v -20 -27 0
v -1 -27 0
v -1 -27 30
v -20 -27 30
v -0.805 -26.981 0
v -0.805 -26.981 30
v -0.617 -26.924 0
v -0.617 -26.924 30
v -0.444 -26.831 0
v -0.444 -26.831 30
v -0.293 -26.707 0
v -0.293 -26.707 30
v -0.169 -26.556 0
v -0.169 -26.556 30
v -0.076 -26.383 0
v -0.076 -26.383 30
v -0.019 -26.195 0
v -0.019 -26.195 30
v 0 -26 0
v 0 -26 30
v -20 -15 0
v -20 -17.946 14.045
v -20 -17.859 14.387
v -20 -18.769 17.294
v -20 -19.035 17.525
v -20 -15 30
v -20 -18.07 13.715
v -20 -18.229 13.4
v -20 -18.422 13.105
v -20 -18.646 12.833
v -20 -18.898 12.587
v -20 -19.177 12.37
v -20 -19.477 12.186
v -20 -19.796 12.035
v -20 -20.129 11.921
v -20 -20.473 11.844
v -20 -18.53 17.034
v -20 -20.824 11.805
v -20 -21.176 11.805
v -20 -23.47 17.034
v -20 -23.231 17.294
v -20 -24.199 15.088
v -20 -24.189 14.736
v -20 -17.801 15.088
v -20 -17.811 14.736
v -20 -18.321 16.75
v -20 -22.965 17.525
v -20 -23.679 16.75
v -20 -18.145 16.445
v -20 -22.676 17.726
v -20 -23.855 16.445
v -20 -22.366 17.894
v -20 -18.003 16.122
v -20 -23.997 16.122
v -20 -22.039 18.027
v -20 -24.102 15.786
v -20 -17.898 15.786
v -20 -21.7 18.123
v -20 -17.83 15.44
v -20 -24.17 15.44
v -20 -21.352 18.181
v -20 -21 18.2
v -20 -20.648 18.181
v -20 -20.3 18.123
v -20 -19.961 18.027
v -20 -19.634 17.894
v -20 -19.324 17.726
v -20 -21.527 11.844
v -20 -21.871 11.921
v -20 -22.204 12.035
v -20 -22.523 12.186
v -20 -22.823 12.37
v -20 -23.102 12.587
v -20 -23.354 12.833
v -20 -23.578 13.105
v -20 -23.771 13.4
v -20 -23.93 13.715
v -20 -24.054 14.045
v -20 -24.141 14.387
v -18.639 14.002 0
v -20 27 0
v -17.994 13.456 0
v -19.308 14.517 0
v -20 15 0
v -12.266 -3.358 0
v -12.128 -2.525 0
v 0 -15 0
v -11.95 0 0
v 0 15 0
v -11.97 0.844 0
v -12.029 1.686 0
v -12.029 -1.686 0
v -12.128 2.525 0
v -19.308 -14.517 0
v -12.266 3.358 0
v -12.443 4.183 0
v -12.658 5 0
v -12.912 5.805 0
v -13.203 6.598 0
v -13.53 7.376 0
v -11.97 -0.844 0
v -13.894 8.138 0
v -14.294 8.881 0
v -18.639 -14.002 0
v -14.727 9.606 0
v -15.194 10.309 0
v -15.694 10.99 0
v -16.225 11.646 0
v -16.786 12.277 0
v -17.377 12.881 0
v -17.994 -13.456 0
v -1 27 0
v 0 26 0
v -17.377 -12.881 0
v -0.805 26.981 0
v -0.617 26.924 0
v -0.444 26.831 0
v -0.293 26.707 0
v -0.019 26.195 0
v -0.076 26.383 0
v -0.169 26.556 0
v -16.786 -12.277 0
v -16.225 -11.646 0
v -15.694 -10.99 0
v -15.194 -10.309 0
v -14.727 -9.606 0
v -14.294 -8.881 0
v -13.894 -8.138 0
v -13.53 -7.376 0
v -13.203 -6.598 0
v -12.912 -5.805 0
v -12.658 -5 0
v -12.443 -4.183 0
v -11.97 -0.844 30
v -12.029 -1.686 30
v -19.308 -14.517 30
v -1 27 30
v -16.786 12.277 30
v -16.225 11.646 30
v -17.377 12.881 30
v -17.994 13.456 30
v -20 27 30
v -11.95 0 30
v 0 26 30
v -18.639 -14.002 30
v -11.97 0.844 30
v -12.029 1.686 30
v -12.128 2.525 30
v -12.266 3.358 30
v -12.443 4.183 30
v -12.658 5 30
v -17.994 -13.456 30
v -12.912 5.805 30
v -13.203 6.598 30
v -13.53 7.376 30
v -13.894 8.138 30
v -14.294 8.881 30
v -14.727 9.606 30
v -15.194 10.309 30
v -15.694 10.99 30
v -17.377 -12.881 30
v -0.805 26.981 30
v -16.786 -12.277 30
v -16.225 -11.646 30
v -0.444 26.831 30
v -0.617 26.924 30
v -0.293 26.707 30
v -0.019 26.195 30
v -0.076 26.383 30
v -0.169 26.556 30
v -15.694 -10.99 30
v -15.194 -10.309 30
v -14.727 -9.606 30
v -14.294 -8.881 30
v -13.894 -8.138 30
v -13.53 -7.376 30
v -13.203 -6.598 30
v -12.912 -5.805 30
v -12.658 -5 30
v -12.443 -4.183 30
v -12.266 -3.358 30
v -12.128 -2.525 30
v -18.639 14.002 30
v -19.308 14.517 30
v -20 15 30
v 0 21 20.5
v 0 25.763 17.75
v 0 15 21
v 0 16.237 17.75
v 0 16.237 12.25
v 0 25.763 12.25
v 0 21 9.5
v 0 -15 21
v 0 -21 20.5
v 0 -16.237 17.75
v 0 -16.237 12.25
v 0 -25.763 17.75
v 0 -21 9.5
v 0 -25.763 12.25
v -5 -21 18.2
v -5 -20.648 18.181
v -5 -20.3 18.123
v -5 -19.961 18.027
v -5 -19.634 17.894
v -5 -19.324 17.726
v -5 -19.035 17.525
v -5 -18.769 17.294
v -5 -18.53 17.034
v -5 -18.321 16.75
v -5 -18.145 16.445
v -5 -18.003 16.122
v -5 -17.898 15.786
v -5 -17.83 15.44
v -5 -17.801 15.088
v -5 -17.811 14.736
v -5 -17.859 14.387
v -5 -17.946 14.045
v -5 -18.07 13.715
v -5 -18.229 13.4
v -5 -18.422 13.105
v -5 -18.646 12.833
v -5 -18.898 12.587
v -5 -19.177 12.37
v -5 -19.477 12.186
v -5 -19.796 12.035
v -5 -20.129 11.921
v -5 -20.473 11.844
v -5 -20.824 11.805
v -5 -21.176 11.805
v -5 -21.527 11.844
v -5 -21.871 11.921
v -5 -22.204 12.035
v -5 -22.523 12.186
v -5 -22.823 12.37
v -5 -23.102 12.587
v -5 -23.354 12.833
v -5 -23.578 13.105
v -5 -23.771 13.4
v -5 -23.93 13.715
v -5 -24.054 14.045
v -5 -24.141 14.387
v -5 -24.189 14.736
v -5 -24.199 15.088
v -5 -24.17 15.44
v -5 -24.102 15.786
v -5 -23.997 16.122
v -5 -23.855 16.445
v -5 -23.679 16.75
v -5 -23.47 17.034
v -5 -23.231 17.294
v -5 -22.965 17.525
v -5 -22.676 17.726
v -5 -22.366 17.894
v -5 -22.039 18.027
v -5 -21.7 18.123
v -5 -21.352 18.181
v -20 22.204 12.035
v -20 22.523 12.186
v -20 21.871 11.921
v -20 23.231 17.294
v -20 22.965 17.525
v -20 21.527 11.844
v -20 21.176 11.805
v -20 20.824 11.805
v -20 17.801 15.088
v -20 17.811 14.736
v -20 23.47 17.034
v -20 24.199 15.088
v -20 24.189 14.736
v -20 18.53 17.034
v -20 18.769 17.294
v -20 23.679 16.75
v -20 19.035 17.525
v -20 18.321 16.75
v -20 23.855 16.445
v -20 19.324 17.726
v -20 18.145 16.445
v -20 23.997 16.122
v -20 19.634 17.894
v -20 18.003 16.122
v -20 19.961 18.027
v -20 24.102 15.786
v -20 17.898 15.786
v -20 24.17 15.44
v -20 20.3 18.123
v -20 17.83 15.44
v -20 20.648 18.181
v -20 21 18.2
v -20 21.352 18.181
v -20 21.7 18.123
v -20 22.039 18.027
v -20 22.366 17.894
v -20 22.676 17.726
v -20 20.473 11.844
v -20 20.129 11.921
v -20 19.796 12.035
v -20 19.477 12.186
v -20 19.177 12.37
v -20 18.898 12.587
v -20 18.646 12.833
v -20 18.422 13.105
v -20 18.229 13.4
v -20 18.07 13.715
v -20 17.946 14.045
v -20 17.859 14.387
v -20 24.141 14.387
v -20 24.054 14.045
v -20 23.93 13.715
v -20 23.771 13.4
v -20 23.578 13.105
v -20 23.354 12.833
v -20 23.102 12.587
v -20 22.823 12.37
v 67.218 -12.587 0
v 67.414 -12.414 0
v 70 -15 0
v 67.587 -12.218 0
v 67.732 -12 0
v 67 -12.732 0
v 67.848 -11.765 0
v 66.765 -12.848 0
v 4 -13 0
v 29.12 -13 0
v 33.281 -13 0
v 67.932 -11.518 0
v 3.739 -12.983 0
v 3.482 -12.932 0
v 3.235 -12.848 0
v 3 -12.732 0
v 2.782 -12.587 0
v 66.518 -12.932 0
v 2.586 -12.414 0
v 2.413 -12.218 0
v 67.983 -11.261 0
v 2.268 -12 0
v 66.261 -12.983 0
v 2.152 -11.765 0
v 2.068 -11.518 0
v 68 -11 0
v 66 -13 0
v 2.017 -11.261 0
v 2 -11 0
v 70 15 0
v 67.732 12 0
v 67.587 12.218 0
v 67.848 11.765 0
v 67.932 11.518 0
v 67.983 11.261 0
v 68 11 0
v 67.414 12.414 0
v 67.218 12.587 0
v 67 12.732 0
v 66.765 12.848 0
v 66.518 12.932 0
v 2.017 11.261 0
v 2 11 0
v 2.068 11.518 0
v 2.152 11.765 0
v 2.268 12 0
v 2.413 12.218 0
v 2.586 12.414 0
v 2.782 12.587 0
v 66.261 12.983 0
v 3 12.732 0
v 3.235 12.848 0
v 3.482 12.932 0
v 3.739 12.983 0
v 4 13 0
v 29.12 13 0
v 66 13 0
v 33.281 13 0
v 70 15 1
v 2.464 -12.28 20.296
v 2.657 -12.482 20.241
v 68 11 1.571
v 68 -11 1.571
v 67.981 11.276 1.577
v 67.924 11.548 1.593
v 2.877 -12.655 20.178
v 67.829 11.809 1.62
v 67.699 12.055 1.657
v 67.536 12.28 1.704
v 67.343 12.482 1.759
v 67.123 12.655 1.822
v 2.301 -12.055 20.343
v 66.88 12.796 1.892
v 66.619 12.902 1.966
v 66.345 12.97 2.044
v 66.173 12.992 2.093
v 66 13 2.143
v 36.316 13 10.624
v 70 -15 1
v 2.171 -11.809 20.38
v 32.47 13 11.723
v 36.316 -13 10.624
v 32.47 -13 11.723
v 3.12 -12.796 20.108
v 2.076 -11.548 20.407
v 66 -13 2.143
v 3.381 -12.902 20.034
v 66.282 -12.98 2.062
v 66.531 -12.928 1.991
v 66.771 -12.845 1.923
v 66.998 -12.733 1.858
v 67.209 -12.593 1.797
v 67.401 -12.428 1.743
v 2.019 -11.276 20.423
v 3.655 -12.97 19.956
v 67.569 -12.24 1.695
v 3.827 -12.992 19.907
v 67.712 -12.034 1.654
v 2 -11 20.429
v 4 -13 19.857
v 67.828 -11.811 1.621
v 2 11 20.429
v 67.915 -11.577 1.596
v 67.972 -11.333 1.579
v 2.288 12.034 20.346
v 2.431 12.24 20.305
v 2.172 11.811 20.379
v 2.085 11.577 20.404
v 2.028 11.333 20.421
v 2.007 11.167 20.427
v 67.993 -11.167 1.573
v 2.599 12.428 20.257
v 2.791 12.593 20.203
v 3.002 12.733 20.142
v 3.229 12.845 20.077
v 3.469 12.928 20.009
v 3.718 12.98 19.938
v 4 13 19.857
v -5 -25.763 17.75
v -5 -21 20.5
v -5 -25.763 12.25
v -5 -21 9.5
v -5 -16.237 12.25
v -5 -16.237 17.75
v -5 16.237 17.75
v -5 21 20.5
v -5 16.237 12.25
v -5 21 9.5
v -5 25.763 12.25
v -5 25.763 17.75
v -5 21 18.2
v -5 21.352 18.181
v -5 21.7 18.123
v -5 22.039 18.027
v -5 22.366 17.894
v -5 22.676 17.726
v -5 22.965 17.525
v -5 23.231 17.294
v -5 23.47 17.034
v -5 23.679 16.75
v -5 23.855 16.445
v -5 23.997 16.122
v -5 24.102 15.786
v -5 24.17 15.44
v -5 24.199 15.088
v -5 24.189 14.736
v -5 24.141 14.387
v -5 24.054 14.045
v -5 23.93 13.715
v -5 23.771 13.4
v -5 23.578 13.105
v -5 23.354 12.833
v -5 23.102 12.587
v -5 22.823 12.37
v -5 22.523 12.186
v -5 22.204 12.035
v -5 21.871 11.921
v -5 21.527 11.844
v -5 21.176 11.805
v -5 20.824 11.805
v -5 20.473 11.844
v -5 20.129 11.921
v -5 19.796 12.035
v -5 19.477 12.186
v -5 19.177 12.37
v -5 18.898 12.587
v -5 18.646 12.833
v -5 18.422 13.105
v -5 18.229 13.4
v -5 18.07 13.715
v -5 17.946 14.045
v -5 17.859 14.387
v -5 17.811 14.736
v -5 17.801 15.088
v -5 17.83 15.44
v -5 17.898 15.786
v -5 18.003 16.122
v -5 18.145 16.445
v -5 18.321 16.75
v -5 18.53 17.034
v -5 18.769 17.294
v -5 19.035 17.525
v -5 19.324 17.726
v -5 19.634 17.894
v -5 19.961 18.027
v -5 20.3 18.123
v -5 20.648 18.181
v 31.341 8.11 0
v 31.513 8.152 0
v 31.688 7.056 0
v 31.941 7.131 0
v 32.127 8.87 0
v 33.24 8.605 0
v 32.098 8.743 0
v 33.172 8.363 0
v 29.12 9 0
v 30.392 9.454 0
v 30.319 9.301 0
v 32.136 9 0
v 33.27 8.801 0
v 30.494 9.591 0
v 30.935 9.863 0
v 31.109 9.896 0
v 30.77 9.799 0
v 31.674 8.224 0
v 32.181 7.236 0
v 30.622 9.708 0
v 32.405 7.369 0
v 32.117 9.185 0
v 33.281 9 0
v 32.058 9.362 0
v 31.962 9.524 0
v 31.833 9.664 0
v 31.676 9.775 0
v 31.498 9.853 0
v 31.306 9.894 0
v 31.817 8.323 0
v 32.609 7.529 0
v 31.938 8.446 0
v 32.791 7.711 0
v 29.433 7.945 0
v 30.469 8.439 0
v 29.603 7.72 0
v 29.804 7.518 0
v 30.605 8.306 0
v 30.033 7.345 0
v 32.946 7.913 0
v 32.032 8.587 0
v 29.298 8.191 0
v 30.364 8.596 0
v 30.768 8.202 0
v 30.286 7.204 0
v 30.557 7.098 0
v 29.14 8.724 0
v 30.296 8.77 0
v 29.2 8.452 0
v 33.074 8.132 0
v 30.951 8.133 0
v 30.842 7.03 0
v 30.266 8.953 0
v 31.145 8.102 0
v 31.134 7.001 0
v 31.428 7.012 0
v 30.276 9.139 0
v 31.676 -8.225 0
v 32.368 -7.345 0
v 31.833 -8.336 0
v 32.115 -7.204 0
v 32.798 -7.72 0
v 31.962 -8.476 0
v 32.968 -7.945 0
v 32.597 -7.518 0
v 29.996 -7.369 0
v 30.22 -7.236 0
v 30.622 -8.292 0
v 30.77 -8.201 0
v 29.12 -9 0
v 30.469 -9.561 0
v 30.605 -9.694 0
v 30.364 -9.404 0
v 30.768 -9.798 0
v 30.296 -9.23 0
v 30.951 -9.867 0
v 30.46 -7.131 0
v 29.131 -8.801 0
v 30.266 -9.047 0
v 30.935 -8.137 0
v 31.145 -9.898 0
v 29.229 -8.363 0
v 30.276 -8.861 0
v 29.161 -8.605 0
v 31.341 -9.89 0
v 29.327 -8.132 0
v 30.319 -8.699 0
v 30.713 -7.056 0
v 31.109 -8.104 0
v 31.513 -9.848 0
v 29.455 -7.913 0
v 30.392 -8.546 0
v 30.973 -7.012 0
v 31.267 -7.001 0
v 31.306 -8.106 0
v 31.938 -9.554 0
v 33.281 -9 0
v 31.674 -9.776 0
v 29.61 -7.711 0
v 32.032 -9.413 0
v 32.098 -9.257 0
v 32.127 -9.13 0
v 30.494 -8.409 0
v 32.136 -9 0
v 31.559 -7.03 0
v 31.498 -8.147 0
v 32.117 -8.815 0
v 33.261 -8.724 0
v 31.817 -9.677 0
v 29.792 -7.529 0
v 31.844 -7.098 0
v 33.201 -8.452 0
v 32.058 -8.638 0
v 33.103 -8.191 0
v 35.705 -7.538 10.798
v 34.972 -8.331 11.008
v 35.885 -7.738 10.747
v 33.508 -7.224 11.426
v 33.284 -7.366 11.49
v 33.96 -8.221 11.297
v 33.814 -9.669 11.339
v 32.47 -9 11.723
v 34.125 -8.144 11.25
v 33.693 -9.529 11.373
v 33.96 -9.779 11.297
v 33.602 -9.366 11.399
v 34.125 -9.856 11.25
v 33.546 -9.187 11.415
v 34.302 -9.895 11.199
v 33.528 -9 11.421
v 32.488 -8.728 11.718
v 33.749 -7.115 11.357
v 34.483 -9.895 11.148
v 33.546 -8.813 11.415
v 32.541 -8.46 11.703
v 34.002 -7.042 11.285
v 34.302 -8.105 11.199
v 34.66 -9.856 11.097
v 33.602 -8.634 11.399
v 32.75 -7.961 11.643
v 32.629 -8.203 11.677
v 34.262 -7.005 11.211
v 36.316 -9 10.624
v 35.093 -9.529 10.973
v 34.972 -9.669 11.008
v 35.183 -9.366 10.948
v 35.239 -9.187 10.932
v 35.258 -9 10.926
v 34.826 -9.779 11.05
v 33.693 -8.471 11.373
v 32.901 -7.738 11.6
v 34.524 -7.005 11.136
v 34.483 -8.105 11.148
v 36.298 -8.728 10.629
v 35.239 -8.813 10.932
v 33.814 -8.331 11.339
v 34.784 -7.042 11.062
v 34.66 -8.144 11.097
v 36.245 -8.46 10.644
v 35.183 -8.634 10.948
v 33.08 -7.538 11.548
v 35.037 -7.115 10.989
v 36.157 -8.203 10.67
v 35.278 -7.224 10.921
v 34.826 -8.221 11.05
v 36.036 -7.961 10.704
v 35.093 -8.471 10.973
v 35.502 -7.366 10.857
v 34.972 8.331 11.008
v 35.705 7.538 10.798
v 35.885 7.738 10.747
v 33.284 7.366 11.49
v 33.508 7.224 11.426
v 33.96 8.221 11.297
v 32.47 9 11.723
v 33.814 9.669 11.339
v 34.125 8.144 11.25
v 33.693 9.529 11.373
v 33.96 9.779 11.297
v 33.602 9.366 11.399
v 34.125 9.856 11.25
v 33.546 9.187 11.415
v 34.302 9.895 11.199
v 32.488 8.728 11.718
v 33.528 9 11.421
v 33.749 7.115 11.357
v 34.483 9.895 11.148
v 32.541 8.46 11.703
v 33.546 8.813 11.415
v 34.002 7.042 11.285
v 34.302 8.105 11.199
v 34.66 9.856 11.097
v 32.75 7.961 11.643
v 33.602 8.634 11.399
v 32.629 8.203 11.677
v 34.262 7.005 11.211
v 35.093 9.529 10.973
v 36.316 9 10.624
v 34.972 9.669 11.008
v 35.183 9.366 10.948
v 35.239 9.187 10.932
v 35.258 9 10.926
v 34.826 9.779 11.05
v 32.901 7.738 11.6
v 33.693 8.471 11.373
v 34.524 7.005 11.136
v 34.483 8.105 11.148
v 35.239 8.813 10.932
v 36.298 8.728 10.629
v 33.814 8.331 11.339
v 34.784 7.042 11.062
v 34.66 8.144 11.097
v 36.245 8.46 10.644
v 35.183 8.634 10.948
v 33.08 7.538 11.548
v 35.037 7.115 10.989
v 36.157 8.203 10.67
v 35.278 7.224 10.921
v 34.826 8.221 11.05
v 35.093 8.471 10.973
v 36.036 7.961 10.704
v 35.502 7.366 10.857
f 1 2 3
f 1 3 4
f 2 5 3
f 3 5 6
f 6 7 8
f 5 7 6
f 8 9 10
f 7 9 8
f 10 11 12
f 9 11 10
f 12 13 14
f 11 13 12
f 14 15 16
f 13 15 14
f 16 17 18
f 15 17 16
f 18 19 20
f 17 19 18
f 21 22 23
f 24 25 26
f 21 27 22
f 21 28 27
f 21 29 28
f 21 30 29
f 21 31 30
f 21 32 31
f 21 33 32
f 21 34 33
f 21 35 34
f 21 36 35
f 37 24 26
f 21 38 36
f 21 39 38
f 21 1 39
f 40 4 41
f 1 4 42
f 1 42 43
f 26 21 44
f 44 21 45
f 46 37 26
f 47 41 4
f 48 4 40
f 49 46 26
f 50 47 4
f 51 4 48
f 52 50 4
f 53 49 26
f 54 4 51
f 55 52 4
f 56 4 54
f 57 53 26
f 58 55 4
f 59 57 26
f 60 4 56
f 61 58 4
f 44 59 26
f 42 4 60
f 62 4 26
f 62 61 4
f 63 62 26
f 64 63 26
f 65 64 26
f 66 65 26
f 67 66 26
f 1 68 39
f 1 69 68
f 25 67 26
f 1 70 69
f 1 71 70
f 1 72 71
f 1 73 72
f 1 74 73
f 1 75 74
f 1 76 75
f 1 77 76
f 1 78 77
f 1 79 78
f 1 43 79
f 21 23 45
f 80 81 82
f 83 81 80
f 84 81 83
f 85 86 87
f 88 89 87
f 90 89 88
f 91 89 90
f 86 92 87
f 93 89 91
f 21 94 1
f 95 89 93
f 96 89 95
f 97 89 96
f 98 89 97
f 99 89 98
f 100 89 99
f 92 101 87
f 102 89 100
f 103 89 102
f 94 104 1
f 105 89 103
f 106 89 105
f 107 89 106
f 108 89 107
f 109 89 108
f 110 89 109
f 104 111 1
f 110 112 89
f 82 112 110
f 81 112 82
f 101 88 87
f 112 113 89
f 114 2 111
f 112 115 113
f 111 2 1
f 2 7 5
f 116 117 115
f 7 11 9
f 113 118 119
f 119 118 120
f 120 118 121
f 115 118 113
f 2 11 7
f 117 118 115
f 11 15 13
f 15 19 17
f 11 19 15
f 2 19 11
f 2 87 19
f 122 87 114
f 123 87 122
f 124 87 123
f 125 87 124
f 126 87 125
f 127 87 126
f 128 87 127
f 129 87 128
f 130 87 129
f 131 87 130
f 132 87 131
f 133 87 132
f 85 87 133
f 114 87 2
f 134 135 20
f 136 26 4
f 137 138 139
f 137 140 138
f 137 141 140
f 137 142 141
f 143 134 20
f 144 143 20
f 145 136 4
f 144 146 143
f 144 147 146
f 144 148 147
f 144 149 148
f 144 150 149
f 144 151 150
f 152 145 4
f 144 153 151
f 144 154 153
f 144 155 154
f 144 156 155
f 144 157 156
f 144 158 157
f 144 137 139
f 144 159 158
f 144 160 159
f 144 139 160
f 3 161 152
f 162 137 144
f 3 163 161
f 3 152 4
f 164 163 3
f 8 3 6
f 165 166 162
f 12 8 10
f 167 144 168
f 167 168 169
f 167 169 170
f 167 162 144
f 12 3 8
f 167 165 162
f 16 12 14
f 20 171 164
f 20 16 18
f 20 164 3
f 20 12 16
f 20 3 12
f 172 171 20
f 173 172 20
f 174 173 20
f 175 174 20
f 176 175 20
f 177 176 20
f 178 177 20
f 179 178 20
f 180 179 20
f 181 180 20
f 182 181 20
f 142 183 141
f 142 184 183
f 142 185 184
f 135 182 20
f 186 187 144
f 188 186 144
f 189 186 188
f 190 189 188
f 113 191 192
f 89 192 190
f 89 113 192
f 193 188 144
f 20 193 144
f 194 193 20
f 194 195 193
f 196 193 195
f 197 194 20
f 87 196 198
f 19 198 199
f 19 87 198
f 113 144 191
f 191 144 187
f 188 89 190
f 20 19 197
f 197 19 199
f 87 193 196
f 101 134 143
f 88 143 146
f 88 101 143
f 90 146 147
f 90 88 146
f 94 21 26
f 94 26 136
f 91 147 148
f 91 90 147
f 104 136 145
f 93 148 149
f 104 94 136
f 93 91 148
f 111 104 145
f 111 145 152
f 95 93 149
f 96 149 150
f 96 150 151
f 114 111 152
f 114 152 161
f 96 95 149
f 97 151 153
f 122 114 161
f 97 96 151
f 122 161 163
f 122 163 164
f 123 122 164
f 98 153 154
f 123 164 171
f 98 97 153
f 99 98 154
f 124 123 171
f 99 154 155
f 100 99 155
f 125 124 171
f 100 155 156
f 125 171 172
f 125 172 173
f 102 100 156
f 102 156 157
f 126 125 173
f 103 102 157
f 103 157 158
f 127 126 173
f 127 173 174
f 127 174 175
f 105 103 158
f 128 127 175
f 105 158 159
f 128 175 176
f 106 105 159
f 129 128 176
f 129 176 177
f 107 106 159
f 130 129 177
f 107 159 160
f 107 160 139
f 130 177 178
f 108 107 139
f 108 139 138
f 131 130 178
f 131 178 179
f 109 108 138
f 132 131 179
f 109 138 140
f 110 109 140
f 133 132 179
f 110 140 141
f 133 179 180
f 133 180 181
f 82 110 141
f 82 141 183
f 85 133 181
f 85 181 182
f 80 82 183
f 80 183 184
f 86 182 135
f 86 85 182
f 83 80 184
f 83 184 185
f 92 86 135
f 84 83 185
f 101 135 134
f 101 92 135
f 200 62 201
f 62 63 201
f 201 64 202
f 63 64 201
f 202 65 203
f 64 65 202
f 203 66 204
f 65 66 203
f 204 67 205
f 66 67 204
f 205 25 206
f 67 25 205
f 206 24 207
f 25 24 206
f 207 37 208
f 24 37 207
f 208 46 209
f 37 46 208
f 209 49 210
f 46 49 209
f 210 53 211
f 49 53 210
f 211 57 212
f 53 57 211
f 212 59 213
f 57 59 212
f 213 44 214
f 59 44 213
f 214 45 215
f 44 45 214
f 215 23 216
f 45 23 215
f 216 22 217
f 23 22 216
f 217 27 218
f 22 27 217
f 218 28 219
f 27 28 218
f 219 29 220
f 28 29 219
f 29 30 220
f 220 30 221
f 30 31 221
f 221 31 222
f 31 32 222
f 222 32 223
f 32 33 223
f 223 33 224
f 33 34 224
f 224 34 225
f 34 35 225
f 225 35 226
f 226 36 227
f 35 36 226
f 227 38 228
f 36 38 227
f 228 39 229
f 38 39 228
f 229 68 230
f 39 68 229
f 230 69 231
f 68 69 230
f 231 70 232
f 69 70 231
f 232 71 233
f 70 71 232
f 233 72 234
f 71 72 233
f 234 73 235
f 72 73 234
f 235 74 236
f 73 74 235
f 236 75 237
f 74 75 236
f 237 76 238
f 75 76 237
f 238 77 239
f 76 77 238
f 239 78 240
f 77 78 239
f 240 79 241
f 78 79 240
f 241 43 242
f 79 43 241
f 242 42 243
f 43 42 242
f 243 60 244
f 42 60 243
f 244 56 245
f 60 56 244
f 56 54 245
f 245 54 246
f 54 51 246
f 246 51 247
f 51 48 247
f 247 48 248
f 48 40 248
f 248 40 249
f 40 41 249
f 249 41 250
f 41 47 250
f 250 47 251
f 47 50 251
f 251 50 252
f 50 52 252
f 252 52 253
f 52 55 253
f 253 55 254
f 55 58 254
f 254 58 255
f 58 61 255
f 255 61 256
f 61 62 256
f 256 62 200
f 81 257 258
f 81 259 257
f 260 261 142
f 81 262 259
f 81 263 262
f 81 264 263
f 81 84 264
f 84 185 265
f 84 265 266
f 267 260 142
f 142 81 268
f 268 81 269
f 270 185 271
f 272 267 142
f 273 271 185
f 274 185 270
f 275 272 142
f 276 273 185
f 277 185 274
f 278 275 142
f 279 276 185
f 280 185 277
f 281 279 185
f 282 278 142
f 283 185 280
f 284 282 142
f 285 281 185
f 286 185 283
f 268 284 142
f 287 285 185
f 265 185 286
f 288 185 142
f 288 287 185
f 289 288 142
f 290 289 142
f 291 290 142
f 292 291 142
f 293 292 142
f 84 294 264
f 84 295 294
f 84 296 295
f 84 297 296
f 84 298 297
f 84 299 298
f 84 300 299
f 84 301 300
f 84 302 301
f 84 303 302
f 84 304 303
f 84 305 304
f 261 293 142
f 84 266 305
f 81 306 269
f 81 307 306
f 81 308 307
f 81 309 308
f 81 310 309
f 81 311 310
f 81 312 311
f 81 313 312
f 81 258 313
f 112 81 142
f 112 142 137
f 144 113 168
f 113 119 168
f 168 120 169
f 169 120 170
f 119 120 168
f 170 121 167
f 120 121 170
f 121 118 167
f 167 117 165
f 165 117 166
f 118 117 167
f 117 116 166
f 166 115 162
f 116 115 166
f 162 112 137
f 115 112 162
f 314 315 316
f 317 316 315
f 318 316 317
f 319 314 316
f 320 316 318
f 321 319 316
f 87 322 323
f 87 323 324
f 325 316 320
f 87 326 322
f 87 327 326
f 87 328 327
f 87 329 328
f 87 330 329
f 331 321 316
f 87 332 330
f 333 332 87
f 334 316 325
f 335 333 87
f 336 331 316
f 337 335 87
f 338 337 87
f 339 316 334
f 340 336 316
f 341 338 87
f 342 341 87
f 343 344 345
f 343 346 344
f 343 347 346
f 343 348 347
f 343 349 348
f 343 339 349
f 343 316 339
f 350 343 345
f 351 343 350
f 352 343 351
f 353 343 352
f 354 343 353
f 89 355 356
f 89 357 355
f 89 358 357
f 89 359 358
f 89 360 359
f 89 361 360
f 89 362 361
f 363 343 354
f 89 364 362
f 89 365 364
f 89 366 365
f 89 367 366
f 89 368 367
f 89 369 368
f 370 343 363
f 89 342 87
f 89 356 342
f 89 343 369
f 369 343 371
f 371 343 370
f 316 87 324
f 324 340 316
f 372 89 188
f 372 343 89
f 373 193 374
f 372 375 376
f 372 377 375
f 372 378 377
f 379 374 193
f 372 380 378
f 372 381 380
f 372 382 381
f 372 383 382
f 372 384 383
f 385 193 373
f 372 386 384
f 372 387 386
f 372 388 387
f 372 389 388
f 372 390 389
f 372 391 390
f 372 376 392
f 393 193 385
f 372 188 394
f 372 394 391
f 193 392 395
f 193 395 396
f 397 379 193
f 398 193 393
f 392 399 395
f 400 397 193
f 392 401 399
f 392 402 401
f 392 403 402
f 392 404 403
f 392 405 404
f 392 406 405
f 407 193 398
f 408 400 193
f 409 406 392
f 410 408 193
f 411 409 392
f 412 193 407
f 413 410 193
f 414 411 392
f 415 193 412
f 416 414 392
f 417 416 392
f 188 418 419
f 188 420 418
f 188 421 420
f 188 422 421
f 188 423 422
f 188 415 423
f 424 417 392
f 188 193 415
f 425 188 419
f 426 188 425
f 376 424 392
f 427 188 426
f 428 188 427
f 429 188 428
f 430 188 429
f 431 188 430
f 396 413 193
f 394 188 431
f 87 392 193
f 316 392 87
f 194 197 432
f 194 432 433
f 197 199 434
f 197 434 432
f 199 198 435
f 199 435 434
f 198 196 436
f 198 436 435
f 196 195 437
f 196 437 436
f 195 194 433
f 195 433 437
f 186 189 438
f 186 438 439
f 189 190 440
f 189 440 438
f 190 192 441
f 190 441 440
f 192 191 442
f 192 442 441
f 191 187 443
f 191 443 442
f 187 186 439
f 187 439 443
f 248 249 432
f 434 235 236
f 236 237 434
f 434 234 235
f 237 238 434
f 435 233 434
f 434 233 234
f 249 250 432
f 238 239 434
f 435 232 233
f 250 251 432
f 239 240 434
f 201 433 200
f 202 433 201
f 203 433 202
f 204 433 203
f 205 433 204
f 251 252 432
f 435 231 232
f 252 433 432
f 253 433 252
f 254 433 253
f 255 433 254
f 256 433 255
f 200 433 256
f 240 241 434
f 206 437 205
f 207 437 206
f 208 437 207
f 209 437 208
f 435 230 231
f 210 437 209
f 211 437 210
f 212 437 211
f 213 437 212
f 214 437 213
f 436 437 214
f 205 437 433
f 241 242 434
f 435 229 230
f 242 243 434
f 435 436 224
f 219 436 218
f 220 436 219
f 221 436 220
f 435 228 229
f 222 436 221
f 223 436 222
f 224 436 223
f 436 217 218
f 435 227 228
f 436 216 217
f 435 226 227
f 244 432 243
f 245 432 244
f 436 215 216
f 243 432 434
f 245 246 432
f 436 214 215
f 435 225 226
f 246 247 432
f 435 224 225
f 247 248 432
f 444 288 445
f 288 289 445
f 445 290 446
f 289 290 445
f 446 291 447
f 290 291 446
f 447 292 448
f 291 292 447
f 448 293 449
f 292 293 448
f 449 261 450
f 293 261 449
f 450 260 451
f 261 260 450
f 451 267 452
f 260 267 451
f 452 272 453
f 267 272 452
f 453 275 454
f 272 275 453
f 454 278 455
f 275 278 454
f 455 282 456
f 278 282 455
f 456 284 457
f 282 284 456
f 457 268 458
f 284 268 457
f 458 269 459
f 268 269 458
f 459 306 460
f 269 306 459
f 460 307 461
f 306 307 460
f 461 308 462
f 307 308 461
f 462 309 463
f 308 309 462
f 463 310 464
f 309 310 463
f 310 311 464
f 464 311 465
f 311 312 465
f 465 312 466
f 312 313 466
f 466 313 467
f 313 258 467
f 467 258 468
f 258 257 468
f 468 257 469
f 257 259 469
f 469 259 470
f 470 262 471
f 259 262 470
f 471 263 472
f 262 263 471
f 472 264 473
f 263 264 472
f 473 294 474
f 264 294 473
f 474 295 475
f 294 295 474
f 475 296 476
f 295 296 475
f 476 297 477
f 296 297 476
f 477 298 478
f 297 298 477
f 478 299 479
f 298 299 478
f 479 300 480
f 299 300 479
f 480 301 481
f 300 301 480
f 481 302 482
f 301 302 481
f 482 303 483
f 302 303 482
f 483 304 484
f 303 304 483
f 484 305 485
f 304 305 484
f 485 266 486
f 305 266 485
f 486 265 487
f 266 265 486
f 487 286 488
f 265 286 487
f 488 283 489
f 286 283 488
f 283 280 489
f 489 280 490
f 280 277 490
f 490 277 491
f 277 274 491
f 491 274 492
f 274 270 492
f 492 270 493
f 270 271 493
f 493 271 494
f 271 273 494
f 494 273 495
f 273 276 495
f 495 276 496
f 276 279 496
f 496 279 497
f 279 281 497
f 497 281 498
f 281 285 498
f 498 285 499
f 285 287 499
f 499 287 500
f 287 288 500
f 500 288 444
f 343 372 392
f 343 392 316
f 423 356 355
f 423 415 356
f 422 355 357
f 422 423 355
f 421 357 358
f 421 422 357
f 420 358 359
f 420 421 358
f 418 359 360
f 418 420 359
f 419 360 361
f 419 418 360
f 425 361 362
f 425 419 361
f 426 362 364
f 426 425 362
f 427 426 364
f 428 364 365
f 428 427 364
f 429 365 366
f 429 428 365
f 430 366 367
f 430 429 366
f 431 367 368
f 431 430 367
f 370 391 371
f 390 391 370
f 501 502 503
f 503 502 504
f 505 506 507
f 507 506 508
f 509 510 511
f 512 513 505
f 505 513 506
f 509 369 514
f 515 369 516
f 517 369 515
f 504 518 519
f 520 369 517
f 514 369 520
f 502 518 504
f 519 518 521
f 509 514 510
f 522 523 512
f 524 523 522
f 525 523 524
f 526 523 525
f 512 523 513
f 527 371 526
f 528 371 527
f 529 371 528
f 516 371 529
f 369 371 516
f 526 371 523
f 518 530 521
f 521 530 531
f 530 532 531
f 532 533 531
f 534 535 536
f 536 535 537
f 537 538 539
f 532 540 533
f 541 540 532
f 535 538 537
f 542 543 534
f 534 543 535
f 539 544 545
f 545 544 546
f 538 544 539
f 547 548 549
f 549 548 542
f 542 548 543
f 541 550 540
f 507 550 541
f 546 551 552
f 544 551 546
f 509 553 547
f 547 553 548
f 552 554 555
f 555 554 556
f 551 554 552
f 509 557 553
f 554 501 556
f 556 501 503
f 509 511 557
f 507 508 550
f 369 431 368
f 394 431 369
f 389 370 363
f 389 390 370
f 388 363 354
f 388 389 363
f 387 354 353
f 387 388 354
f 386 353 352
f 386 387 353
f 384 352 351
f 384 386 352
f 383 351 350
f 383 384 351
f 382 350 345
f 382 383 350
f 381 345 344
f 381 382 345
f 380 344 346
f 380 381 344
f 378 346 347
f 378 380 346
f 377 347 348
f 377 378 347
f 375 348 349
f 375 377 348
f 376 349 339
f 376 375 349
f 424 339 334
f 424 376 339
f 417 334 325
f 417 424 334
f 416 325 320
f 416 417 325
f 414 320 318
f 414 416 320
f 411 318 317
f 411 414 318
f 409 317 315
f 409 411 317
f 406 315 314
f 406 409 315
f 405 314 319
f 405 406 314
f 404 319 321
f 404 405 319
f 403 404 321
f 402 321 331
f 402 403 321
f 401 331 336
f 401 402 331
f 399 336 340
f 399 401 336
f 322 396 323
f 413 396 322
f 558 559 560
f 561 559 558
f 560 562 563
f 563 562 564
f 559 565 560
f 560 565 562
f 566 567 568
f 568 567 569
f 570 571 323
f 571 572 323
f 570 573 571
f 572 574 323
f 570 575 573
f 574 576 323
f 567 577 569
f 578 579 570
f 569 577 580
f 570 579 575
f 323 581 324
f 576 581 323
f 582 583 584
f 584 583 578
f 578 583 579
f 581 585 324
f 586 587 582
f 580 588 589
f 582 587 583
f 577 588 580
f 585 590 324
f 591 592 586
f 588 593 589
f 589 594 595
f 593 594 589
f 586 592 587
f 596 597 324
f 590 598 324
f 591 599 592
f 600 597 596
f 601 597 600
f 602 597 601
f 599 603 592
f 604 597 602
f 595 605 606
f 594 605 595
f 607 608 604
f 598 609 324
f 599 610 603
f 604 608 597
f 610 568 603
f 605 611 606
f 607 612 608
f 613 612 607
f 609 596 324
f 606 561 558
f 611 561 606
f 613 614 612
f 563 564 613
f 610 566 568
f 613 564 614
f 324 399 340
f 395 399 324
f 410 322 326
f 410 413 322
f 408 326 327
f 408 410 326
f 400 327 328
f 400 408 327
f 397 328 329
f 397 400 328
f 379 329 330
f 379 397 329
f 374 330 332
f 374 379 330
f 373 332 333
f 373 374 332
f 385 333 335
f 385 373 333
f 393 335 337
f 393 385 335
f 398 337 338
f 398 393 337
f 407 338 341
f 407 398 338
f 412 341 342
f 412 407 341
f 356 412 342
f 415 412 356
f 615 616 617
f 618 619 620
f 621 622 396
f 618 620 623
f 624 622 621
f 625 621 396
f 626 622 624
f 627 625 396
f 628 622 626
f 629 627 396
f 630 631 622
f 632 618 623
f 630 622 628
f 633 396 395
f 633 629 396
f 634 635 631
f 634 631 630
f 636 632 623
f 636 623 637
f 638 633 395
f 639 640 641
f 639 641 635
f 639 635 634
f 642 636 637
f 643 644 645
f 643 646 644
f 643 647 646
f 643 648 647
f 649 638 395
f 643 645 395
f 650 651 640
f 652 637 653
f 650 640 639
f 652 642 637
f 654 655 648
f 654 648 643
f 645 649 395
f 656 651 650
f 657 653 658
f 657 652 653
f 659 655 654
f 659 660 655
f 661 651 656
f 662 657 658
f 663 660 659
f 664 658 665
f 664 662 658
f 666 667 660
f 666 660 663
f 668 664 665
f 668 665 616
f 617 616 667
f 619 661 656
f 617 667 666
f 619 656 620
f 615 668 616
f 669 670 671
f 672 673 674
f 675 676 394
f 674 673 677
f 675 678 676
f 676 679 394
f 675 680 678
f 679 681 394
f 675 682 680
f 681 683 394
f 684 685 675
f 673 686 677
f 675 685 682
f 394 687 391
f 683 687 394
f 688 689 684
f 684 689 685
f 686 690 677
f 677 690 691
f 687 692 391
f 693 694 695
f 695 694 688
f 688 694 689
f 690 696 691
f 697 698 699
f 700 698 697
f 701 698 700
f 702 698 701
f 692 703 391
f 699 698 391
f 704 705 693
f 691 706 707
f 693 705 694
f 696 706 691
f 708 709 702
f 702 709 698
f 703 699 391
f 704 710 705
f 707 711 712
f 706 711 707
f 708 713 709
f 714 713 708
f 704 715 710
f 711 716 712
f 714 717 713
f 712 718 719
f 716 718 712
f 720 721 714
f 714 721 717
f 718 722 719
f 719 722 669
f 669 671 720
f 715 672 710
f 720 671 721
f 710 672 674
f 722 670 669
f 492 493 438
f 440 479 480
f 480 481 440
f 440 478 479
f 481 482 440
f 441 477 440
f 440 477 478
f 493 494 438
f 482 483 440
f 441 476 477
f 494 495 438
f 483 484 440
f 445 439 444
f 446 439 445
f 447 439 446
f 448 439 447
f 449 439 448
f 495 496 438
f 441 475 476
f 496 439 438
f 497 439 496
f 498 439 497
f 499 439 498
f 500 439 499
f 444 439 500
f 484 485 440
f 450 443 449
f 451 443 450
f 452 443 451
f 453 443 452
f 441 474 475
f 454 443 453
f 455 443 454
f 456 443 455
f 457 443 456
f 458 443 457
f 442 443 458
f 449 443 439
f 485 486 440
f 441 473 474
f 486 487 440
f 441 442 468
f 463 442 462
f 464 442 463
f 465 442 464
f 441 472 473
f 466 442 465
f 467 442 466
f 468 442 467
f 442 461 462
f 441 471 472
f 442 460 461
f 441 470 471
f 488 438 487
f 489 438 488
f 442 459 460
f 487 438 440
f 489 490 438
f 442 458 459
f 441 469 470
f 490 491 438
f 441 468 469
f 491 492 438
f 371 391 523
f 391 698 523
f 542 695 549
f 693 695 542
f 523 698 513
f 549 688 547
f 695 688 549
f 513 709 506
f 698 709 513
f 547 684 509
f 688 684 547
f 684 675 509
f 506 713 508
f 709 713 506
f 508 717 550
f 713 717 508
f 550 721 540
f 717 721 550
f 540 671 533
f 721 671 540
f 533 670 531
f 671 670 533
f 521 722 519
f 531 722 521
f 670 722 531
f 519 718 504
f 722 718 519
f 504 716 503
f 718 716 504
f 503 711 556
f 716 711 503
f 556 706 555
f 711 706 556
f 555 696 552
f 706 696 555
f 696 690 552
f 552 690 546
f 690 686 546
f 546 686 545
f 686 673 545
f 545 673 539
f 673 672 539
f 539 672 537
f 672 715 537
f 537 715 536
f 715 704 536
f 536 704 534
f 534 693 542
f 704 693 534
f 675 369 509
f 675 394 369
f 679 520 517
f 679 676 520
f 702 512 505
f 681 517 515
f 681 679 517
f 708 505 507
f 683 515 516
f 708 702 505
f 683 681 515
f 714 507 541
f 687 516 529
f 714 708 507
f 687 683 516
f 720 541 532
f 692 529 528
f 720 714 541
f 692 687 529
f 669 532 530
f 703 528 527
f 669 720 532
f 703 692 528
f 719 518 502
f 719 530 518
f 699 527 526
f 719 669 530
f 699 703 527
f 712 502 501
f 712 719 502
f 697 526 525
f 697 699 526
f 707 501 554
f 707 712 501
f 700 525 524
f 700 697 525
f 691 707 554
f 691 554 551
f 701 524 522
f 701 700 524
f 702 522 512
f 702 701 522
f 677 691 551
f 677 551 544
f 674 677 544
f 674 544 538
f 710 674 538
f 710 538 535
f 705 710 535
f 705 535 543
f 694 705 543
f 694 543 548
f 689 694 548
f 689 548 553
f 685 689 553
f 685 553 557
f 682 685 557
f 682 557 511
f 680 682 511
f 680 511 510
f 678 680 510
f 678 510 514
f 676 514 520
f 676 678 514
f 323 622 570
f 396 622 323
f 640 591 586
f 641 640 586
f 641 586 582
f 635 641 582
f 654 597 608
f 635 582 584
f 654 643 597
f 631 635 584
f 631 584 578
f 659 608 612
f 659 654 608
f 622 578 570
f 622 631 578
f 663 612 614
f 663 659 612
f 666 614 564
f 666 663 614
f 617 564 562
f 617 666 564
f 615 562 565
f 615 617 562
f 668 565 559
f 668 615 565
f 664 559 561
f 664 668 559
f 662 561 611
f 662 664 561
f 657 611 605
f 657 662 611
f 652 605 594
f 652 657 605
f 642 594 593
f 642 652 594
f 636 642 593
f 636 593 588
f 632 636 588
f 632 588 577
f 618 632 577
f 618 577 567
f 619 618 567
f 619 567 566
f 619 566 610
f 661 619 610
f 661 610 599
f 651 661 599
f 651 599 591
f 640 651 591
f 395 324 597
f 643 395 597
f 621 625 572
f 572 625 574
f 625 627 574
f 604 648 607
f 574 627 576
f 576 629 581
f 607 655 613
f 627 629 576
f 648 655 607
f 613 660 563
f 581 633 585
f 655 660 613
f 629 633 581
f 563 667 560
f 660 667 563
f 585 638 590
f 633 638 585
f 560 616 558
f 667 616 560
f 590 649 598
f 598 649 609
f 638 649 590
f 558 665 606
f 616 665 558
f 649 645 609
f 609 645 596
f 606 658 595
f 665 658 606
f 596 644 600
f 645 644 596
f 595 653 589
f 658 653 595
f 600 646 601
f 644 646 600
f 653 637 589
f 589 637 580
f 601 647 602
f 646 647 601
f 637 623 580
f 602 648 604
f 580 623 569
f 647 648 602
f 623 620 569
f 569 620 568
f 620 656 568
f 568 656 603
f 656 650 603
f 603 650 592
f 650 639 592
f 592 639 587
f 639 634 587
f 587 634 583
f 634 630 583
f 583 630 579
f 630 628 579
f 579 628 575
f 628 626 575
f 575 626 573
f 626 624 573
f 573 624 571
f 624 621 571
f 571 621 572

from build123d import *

# Parameters (mm, degrees)
PRISM_DEPTH                         = 5
CYLINDER_R                          = 3.2
CYLINDER_DEPTH                      = 30
FUSION_PLACEMENT_ANGLE              = 90
EXTRUDE002_DEPTH                    = 30
BOX_W                               = 80
BOX_H                               = 40
BOX_DEPTH                           = 10
SKETCH_AS_DRAWN_R                   = 0.9
EXTRUDE_DEPTH                       = 15
EXTRUDE_ONTO_SKETCH_PLACEMENT_ANGLE = 15.945396
EXTRUDE004_DEPTH                    = 30
EXTRUDE003_DEPTH                    = 30


with BuildPart() as prisma:
    # Prism → Prism (new body)
    with BuildSketch(Plane.XY):
        Polygon((5.5, 0), (2.75, 4.76314), (-2.75, 4.76314), (-5.5, 0), (-2.75, -4.76314), (2.75, -4.76314), align=None)
    extrude(amount=PRISM_DEPTH)


with BuildPart() as ausschnitt_m6_schraube:
    # Cylinder → Cylinder (new body)
    with BuildSketch(Plane.XY):
        Circle(CYLINDER_R)
    extrude(amount=CYLINDER_DEPTH)

    # Fusion: union Prisma
    add(prisma.part)


with BuildPart() as ausschnitt_m6_schraube_1:
    # Fusion placement: moved
    add(ausschnitt_m6_schraube.part.moved(Location((0, -21, 15))).rotate(Axis((0, -21, 15), (0, -1, 0)), FUSION_PLACEMENT_ANGLE))


with BuildPart() as ausschnitt_m6_schraube001:
    # Clone base: copy of Ausschnitt_M6_Schraube
    add(ausschnitt_m6_schraube_1.part)


with BuildPart() as ausschnitt_m6_schraube001_1:
    # Clone placement: moved
    add(ausschnitt_m6_schraube001.part.moved(Location((0, 42, 0))))


with BuildPart() as ausschnitte:
    # Fusion001 base: copy of Ausschnitt_M6_Schraube
    add(ausschnitt_m6_schraube_1.part)

    # Fusion001: union Ausschnitt_M6_Schraube001
    add(ausschnitt_m6_schraube001_1.part)


with BuildPart() as solar_mastbefestigung1:
    # Sketch002 → Extrude002 (new body)
    with BuildSketch(Plane.XY):
        with BuildLine():
            Line((-20, 27), (-1, 27))
            ThreePointArc((0, 26), (-0.292893, 26.707107), (-1, 27))
            Line((0, 26), (0, -26))
            ThreePointArc((-1, -27), (-0.292893, -26.707107), (0, -26))
            Line((-1, -27), (-20, -27))
            Line((-20, -27), (-20, -15))
            ThreePointArc((-20, -15), (-11.949874, 0), (-20, 15))
            Line((-20, 15), (-20, 27))
        make_face()
    extrude(amount=EXTRUDE002_DEPTH)


with BuildPart() as abschneider:
    # Box → Box (new body)
    with BuildSketch(Plane(origin=(0, -35, -10), x_dir=(1, 0, 0), z_dir=(0, 0, 1))):
        with Locations((40, 20)):
            Rectangle(BOX_W, BOX_H)
    extrude(amount=BOX_DEPTH)


with BuildPart() as schraubenbolzen1:
    # Sketch as drawn → Extrude (new)
    with BuildSketch(Plane.XY):
        with BuildLine():
            Line((32, -28), (28, -28))
            Line((28, -28), (28, -24))
            ThreePointArc((32, -24), (30, -22), (28, -24))
            Line((32, -28), (32, -24))
        make_face()
        with Locations((30, -24)):
            Circle(SKETCH_AS_DRAWN_R, mode=Mode.SUBTRACT)
    extrude(amount=-EXTRUDE_DEPTH)


with BuildPart() as schraubenbolzen1_1:
    # Extrude onto Sketch placement: moved
    add(schraubenbolzen1.part.moved(Location((5.54717, 0, 19.415094))).rotate(Axis((5.54717, 0, 19.415094), (0, 1, 0)), EXTRUDE_ONTO_SKETCH_PLACEMENT_ANGLE))


with BuildPart() as cut:
    # Part__Mirroring: instance of Schraubenbolzen1
    add(schraubenbolzen1_1.part.mirror(Plane(origin=(0, 0, 0), x_dir=(1, 0, 0), z_dir=(0, 1, 0))))


with BuildPart() as cut_1:
    # Part__Mirroring placement: moved
    add(cut.part.moved(Location((0, -30, 0))))

    # Fusion002: union Schraubenbolzen1
    add(schraubenbolzen1_1.part)

    # Cut: cut Abschneider
    add(abschneider.part, mode=Mode.SUBTRACT)


with BuildPart() as keil2_ausschnitt:
    # Sketch004 → Extrude004 (new body)
    with BuildSketch(Plane(origin=(0, 0, 0), x_dir=(1, 0, 0), z_dir=(0, 0, -1))):
        with BuildLine():
            Line((4, 28), (66, 28))
            ThreePointArc((68, 26), (67.414214, 27.414214), (66, 28))
            Line((68, 26), (68, 4))
            ThreePointArc((66, 2), (67.414214, 2.585786), (68, 4))
            Line((66, 2), (4, 2))
            ThreePointArc((2, 4), (2.585786, 2.585786), (4, 2))
            Line((2, 4), (2, 26))
            ThreePointArc((4, 28), (2.585786, 27.414214), (2, 26))
        make_face()
    extrude(amount=EXTRUDE004_DEPTH)


with BuildPart() as keil2_ausschnitt_1:
    # Extrude004 placement: moved
    add(keil2_ausschnitt.part.moved(Location((0, 0, 30))))


with BuildPart() as solar_halter:
    # Sketch003 → Extrude003 (new body)
    with BuildSketch(Plane.XZ):
        Polygon((0, 0), (0, 21), (70, 1), (70, 0), align=None)
    extrude(amount=EXTRUDE003_DEPTH)

    # Cut001: cut Keil2_Ausschnitt
    add(keil2_ausschnitt_1.part, mode=Mode.SUBTRACT)

    # Fusion003: union Cut
    add(cut_1.part)


with BuildPart() as solar_halter_1:
    # Fusion003 placement: moved
    add(solar_halter.part.moved(Location((0, 15, 0))))

    # Fusion004: union solar_mastbefestigung1
    add(solar_mastbefestigung1.part)

    # Cut002: cut Ausschnitte
    add(ausschnitte.part, mode=Mode.SUBTRACT)


solid = solar_halter_1.part
